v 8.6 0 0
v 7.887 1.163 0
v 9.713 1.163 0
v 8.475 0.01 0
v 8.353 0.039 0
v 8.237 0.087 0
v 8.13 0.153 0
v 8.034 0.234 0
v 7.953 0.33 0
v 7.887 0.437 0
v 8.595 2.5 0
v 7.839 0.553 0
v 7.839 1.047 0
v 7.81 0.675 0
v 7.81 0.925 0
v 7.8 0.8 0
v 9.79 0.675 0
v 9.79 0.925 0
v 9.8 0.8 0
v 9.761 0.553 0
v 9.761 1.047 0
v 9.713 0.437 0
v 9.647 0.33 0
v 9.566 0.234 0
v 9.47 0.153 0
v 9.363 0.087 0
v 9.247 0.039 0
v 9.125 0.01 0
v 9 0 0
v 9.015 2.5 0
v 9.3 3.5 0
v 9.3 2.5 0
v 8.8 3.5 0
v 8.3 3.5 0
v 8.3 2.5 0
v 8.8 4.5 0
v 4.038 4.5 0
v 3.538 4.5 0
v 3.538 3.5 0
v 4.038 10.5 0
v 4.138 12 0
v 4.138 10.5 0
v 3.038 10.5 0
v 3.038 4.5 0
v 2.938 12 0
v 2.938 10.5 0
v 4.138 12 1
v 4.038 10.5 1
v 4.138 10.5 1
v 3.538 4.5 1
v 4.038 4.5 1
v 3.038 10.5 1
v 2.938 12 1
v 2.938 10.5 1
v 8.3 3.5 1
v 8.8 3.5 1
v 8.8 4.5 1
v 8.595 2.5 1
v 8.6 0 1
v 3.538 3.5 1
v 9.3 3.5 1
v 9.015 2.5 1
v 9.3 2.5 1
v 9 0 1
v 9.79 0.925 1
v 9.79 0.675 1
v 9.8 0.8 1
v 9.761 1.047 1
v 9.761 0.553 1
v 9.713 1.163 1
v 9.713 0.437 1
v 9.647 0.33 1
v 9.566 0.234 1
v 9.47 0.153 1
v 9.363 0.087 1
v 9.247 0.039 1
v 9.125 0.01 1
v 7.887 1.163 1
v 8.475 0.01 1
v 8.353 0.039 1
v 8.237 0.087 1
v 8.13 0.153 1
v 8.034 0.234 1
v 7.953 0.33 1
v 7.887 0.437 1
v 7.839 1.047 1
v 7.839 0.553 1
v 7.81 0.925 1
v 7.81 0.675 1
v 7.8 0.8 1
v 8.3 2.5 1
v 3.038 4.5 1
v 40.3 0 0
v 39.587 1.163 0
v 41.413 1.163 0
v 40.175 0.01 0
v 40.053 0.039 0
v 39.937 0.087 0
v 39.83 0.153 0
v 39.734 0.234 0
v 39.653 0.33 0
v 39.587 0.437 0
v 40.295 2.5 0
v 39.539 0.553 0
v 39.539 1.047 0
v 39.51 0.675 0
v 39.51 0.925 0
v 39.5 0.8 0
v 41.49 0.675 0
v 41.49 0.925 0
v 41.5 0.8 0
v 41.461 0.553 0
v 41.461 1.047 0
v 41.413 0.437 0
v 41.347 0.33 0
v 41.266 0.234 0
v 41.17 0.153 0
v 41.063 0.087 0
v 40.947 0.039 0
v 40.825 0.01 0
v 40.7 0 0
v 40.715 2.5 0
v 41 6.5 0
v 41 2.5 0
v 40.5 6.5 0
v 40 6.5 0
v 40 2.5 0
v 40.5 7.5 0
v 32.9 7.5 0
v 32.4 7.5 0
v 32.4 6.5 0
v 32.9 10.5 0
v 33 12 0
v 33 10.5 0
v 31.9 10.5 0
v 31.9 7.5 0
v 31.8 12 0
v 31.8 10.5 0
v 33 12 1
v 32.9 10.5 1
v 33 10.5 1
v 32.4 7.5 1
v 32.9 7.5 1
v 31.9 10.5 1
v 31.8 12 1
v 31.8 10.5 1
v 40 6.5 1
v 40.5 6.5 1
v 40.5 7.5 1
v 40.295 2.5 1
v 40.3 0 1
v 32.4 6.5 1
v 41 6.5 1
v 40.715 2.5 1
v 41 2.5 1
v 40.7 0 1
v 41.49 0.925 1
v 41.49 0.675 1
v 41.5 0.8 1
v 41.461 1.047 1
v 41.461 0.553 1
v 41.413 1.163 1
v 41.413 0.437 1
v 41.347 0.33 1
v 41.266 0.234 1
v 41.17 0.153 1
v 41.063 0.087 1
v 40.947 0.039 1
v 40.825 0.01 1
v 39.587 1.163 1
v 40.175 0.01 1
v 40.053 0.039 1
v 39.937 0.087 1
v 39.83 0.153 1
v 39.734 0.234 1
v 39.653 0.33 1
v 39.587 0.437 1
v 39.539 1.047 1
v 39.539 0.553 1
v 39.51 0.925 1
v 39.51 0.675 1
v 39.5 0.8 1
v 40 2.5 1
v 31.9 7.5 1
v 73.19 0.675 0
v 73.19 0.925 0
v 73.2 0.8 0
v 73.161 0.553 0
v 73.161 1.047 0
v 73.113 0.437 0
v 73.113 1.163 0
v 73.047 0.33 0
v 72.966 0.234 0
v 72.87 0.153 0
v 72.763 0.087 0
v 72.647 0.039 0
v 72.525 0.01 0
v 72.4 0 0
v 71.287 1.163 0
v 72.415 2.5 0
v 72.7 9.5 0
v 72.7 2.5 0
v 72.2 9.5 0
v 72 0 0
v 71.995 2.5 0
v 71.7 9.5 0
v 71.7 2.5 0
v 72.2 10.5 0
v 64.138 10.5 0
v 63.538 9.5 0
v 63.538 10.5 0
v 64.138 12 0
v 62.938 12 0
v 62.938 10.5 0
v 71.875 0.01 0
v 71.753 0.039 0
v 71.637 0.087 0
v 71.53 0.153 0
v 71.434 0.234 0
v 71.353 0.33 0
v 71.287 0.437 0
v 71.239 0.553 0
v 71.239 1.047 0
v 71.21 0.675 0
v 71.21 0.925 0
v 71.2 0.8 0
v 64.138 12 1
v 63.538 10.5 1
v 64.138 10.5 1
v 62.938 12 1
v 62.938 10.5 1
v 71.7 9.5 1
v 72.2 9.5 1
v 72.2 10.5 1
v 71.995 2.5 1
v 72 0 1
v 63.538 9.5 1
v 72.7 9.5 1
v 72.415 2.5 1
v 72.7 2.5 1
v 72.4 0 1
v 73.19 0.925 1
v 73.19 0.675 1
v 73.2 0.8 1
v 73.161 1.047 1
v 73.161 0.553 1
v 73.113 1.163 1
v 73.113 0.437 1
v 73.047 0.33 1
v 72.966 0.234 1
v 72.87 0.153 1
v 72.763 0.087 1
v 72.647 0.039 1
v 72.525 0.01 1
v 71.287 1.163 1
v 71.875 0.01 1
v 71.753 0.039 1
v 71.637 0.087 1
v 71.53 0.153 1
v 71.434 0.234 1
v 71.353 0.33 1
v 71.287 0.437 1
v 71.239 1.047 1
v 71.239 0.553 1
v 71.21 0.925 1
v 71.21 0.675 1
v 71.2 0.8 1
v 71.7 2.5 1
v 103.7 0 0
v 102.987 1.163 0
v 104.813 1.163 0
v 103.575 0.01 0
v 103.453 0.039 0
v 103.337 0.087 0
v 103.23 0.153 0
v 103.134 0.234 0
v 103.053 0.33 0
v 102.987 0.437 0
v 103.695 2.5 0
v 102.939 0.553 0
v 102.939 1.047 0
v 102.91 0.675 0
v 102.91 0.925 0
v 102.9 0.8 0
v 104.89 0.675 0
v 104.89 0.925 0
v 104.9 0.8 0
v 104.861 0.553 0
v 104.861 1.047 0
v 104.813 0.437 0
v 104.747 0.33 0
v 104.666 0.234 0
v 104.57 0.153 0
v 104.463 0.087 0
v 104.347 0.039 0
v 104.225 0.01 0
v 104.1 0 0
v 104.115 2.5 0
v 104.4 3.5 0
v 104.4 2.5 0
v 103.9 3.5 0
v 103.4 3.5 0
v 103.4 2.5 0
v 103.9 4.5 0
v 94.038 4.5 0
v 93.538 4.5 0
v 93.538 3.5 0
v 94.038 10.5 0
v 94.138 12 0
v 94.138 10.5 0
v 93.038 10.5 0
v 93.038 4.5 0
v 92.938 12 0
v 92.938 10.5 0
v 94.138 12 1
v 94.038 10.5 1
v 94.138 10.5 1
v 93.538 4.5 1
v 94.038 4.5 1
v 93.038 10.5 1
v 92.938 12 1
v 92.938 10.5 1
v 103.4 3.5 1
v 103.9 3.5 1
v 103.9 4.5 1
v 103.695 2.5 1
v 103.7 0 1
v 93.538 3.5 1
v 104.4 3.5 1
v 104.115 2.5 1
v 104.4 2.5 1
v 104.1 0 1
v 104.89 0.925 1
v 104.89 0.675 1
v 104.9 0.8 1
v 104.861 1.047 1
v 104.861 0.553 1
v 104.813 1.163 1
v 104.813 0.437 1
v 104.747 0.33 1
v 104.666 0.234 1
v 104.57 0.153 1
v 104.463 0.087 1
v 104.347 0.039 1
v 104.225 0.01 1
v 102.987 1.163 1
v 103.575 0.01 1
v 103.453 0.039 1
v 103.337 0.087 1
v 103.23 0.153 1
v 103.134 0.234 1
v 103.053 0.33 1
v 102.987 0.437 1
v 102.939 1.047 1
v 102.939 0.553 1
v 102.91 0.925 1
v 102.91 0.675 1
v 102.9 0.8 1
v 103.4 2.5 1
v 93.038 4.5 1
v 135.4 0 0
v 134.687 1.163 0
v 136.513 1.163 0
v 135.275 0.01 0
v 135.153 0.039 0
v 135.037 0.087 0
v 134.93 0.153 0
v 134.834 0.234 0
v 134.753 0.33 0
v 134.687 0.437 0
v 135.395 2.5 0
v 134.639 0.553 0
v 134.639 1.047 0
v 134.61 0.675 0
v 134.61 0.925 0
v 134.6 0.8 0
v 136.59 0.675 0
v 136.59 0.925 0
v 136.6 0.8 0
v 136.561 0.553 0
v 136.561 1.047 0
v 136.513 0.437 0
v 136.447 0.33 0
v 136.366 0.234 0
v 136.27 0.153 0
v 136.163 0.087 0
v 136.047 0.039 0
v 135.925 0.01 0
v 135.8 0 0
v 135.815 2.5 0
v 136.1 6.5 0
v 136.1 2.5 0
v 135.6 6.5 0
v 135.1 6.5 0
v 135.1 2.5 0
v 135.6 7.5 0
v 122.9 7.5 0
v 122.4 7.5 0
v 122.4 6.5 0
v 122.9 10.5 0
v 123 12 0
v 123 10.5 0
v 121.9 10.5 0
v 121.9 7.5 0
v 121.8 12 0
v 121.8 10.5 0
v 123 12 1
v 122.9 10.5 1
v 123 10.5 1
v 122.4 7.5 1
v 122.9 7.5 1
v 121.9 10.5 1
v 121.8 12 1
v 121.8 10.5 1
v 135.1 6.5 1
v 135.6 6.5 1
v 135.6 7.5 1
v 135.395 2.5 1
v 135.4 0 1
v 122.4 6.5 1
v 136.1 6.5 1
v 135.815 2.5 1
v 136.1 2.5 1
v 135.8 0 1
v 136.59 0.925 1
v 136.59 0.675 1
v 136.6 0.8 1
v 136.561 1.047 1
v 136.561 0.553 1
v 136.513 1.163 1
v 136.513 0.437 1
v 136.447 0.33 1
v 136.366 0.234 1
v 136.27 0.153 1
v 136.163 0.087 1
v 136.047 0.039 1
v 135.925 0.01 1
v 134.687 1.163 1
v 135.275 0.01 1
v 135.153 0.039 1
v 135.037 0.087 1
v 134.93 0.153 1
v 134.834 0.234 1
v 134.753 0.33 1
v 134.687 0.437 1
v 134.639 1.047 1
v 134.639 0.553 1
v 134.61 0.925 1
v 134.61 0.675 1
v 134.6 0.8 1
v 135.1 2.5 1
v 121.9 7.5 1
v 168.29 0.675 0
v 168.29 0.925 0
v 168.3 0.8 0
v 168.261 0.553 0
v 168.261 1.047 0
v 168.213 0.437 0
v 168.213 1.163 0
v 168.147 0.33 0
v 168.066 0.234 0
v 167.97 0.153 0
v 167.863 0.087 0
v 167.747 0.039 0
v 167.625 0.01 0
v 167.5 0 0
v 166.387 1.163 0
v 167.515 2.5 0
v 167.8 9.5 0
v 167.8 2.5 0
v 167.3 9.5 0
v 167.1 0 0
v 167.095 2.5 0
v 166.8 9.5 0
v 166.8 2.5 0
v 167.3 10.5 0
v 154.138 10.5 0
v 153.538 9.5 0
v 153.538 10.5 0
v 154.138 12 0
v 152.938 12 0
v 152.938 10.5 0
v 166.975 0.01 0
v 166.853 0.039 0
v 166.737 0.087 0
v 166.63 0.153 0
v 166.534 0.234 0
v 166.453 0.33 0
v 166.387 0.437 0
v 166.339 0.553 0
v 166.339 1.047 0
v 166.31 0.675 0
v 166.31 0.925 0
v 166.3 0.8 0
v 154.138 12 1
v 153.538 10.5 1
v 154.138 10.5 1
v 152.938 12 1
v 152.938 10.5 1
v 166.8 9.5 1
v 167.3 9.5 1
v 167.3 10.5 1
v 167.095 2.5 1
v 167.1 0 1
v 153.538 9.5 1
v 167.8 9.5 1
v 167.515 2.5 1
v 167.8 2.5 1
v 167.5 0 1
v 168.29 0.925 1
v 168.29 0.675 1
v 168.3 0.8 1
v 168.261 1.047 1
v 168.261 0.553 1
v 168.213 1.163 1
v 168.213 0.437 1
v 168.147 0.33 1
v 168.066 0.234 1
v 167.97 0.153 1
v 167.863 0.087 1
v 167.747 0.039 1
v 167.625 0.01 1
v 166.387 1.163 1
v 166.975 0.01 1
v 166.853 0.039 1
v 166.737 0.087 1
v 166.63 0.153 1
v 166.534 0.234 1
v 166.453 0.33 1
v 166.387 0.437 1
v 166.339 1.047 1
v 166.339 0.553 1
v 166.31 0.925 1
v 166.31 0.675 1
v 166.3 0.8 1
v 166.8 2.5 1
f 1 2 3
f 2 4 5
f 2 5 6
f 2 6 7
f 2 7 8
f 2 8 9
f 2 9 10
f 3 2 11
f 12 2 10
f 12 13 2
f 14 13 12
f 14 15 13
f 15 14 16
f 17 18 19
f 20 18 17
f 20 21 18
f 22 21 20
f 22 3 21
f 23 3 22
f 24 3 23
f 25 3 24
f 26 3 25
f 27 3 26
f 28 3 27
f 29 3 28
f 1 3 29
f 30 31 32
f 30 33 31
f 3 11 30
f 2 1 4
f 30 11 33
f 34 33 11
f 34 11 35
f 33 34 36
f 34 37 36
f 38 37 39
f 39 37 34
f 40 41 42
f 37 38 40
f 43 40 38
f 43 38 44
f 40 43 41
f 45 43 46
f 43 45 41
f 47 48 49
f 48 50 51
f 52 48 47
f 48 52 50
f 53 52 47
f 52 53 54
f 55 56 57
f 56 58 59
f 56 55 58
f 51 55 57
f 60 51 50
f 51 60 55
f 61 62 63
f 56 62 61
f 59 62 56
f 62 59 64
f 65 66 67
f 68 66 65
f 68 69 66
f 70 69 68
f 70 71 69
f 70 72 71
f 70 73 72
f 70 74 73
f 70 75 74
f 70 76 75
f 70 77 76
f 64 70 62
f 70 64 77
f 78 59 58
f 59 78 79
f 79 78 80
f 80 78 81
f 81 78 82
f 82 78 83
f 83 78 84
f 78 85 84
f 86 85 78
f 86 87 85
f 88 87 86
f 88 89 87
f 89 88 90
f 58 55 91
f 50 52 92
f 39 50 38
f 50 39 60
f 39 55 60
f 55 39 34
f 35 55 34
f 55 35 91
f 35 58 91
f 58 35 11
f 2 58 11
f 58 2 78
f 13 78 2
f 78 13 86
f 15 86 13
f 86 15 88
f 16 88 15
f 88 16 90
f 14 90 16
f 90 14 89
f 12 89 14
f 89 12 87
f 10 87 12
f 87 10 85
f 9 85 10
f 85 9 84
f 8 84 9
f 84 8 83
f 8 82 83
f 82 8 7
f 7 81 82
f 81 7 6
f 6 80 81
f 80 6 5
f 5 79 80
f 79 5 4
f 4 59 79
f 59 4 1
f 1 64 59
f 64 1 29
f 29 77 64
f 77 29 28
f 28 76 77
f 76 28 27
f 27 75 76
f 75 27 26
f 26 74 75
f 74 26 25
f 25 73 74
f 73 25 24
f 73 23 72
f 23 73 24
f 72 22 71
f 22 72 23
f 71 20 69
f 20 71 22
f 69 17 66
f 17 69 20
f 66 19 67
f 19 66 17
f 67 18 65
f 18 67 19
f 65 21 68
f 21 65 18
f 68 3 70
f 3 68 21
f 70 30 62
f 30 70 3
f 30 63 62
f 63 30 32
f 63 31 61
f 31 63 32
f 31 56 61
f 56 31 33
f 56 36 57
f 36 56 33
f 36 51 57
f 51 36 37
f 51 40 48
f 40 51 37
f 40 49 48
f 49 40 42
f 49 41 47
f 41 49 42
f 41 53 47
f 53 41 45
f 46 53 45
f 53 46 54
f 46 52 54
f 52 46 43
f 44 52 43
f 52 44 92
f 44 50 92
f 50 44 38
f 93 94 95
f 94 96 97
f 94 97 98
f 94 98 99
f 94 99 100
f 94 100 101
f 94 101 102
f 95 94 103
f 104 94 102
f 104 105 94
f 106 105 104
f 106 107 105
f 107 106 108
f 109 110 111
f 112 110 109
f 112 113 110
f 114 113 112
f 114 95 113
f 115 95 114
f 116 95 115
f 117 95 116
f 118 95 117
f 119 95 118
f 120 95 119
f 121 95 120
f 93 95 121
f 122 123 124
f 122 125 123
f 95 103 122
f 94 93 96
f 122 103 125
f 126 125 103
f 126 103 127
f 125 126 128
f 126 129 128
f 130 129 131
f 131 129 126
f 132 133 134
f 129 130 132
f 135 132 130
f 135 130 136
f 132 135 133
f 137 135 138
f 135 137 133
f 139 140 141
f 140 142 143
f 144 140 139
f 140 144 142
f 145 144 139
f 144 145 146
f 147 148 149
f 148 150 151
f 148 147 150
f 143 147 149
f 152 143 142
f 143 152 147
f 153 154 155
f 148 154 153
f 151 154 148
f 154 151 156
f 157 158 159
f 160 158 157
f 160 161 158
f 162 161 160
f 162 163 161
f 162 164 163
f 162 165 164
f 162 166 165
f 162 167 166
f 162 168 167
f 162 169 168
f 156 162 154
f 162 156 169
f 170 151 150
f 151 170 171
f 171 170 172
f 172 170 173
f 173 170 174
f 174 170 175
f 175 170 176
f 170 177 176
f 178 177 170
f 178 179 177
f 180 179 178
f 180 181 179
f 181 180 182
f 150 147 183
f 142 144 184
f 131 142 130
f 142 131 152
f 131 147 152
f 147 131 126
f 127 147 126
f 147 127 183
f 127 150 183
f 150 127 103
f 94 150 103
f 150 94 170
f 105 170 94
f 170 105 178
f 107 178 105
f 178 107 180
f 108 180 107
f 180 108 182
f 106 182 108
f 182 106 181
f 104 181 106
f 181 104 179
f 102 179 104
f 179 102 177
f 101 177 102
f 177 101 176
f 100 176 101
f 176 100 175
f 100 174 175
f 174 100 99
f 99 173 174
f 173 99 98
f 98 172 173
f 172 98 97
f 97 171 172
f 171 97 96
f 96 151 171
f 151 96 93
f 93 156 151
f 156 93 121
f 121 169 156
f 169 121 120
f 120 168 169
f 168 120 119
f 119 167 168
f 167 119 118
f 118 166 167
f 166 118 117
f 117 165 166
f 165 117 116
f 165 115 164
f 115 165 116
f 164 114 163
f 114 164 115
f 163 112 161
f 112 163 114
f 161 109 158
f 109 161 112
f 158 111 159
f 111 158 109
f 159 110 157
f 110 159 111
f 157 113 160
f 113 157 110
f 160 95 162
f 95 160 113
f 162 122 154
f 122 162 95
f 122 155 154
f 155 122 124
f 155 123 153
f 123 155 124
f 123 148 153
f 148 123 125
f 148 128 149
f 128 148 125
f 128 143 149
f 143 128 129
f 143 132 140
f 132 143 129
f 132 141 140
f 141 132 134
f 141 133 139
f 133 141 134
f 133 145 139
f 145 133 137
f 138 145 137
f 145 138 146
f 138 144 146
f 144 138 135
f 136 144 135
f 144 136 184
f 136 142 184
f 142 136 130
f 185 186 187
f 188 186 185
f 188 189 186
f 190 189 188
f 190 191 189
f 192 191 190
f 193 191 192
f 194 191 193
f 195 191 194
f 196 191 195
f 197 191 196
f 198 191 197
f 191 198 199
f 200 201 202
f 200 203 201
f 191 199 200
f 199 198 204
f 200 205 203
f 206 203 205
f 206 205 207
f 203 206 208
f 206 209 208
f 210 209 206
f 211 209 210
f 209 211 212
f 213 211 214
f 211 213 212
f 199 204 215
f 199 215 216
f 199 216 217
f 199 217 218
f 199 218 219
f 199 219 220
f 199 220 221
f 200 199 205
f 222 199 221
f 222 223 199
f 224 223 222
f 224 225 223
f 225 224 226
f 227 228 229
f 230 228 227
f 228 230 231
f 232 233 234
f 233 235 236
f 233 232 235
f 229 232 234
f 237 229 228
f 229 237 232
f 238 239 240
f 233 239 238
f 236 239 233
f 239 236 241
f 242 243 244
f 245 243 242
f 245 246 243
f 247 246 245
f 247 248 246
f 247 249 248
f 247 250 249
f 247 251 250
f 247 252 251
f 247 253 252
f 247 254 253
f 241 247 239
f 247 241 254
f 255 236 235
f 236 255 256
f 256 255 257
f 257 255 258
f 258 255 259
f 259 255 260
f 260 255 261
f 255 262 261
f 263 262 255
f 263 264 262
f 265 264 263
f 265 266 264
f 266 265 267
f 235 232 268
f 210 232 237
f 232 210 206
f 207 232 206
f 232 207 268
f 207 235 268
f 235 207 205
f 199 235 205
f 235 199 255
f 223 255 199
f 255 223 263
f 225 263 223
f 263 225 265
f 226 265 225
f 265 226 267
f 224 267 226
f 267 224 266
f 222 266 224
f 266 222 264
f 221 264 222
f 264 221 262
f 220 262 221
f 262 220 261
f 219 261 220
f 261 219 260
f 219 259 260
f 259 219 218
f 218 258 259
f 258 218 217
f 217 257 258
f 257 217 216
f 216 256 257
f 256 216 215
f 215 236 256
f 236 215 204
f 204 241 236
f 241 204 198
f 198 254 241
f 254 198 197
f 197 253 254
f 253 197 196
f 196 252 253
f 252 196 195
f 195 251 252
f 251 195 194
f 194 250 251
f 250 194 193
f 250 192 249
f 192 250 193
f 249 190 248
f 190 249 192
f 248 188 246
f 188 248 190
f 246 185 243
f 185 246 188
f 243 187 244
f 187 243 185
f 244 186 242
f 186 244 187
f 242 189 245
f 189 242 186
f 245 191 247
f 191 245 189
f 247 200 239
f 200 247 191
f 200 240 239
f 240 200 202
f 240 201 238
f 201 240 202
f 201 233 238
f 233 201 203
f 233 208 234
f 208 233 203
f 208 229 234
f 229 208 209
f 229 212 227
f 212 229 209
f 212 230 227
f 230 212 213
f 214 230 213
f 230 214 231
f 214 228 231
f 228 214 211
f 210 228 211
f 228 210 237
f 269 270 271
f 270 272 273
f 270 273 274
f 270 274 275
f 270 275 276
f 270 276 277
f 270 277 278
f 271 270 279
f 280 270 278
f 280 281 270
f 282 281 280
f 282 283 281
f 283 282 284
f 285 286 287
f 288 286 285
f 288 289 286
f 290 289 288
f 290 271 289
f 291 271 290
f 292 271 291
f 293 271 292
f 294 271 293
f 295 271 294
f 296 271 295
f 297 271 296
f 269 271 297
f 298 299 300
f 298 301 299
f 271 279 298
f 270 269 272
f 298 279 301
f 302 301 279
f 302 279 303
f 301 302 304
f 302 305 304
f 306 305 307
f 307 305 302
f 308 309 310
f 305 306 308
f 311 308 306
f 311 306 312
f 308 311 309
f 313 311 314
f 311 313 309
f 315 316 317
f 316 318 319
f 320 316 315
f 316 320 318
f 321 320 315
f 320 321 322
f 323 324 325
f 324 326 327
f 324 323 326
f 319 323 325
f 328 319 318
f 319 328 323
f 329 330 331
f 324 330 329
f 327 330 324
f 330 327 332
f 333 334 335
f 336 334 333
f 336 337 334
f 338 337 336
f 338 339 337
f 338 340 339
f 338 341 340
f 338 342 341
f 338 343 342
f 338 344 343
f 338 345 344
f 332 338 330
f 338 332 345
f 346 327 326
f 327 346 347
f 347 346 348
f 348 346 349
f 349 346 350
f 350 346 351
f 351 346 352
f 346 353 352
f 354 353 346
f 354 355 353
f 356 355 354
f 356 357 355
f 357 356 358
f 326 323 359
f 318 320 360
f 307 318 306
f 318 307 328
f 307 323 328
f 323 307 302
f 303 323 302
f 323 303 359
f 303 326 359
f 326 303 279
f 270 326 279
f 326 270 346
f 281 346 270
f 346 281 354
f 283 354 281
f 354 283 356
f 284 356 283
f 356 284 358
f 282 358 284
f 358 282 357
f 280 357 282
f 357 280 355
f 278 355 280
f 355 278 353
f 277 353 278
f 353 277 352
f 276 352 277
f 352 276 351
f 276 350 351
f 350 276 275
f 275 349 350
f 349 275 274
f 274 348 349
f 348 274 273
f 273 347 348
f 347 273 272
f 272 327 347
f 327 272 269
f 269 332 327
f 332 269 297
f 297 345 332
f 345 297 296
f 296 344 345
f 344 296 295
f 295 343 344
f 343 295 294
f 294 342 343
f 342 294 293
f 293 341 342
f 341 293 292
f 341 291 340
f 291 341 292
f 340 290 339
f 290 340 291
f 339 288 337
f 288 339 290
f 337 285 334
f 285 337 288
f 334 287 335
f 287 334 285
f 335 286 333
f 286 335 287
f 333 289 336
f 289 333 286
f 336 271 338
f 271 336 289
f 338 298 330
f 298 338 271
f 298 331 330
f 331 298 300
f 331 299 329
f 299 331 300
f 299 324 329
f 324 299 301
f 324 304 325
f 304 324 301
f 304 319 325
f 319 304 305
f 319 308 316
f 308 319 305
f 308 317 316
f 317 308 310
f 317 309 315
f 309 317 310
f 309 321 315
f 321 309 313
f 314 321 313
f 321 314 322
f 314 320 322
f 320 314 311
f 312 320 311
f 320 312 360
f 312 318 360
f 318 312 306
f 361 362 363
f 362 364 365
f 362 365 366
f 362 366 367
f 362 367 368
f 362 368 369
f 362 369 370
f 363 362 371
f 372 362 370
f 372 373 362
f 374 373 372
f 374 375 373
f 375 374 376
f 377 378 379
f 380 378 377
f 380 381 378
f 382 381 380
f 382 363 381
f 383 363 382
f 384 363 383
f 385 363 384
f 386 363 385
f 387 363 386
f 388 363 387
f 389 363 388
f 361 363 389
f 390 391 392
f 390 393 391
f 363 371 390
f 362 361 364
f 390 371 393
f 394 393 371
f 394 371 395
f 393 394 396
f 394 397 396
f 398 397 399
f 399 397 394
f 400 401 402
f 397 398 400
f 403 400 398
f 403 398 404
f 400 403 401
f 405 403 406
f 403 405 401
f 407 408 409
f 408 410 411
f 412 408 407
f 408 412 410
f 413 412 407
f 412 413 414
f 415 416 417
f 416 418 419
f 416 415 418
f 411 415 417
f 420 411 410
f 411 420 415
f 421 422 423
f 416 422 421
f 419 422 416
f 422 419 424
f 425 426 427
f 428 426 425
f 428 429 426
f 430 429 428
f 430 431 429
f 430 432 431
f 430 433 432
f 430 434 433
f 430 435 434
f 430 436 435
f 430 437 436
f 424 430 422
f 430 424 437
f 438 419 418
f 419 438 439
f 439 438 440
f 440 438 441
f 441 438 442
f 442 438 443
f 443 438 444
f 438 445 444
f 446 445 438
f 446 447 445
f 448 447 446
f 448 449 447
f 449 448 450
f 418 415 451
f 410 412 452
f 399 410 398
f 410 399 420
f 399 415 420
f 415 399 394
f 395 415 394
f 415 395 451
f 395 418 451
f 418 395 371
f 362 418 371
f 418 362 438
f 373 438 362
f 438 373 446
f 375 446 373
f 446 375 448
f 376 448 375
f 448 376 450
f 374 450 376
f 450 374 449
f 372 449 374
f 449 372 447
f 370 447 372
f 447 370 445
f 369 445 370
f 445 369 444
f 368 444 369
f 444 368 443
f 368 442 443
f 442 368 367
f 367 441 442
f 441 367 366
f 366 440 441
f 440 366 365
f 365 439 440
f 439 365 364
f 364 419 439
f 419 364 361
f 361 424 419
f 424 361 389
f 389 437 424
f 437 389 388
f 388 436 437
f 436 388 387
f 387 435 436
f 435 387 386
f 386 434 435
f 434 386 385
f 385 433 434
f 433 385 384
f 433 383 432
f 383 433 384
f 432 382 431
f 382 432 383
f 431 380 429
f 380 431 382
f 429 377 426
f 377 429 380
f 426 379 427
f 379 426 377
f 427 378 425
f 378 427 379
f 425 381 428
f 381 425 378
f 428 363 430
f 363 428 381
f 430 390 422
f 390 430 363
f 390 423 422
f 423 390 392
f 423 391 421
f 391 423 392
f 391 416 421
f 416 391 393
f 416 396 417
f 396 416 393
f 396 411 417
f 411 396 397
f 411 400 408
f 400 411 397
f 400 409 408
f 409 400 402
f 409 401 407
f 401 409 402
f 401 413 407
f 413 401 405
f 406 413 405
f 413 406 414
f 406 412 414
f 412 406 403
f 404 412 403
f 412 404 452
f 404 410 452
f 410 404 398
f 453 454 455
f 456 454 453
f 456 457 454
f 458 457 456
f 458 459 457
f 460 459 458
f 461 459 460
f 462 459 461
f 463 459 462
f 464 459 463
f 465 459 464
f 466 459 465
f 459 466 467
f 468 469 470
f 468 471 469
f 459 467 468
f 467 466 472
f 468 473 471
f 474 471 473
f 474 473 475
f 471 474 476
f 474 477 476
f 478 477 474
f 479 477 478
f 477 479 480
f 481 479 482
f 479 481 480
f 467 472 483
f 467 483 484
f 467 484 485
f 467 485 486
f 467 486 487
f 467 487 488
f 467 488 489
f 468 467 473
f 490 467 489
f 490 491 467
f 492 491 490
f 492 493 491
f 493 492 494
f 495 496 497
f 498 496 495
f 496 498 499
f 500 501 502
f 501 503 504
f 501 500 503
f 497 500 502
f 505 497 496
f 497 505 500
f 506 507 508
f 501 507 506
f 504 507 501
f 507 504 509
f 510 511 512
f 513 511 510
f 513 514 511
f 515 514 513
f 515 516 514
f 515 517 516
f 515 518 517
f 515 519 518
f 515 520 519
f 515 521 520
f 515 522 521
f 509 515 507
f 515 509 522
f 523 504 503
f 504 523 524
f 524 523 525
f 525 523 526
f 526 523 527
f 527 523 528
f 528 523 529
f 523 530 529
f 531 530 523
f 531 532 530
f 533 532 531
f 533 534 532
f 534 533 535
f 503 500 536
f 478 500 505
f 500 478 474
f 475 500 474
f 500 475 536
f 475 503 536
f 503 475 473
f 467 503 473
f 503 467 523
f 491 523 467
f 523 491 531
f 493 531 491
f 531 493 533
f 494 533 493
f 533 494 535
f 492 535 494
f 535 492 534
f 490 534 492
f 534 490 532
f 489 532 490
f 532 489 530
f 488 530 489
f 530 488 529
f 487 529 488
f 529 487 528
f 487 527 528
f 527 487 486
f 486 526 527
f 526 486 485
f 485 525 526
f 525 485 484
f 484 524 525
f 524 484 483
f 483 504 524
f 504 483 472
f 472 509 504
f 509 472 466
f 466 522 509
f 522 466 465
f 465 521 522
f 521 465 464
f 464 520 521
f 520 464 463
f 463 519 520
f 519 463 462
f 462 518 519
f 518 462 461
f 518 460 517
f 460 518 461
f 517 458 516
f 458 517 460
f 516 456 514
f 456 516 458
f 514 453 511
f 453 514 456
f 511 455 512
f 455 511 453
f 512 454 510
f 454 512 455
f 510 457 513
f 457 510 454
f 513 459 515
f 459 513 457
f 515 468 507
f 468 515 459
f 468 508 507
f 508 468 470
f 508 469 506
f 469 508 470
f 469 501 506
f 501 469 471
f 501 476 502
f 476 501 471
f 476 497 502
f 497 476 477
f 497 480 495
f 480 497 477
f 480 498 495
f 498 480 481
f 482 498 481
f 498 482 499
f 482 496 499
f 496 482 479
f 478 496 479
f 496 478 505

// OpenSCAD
// =========================================================
// BRAILLIX LINKAGE SET — Laser-Cut Metal Cranks
// Revision 2.0 — Staggered arm heights, corrected total height
// Updated 2026-05-06
//
// NOT 3D-printed. Export as DXF for laser cutting.
// Material: 1mm stainless steel or 1mm aluminium sheet.
// Post-process: sand foot tip smooth, lubricate with silicone grease.
//
// --- KEY DESIGN CHANGE FROM v1.0 ---
// v1.0: all 6 linkages had the same riser_h = 9.0mm — WRONG.
//   The available gap (base plate top to top plate bottom) is only 8mm.
//   All linkages had identical arm positions — arms in same column overlap.
//
// v2.0 fixes:
//   1. total_h = 12.0mm (foot bottom to nub top) — matches corrected stack.
//   2. Arm heights are STAGGERED per column row to prevent collision:
//        Top row (dots 1,4): arm at 3.5mm from foot
//        Mid row (dots 2,5): arm at 6.5mm from foot
//        Bot row (dots 3,6): arm at 9.5mm from foot
//      Minimum inter-arm gap at worst case (adjacent arms, one +0.8mm travel):
//        3.0mm stagger - 1.0mm arm_h - 0.8mm travel = 1.2mm clearance ✓
//   3. arm_h reduced from 1.5mm to 1.0mm to accommodate stagger within total_h.
//
// --- VERIFIED STACK (z from outer box bottom) ---
//   z=27.0  cam flat surface  → foot bottom (nub flush with top plate = dot DOWN)
//   z=27.8  cam bump top      → foot bottom (nub 0.8mm above top plate = dot UP)
//   z=39.0  top plate top surface
//   total_h = 39.0 - 27.0 = 12.0mm ✓
// =========================================================

// --- 1. PARAMETERS ---

thickness     = 1.0;    // Sheet metal thickness (extrusion depth for DXF)
foot_w        = 2.0;    // Foot width — straddles cam track (1.6mm wide), 0.2mm overhang each side
foot_len      = 2.5;    // Foot contact patch length
foot_radius   = 0.8;    // Rounded foot tip (reduces cam surface wear)
nub_w         = 1.2;    // Nub width — matches top_plate slot_width (1.2mm) exactly
nub_len       = 2.0;    // Nub length (radial extent)
nub_h         = 1.5;    // Nub protrusion above arm/upper-riser top
arm_h         = 1.0;    // Horizontal arm thickness (was 1.5 — reduced for stagger fit)
total_h       = 12.0;   // Total height: foot bottom → nub top (matches corrected stack)

// Cam geometry (must match braille_cam2.scad exactly)
track_width   = 1.6;
track_gap     = 0.1;
inner_radius  = 8.0;

// Braille dot positions (must match top_plate.scad)
col_spacing   = 4.8;    // Left column at x=-2.4, right at x=+2.4
row_spacing   = 2.6;    // Rows at y=+2.6, 0, -2.6

// Track centre radius for track index t
function track_r(t) = inner_radius + t * (track_width + track_gap) + track_width / 2;
//  t=0: 8.85mm   t=1: 10.55mm   t=2: 12.25mm
//  t=3: 13.95mm  t=4: 15.65mm   t=5: 17.35mm

function dot_x(dot) = (dot < 3) ? -col_spacing/2 : col_spacing/2;
function dot_y(dot) = (dot == 0 || dot == 3) ?  row_spacing :
                      (dot == 1 || dot == 4) ?  0 :
                                                -row_spacing;

// Arm Y position from foot bottom — STAGGERED per row to prevent collision
// Dots 0,3 = top row (innermost tracks)  → lowest arm
// Dots 1,4 = mid row                     → middle arm
// Dots 2,5 = bottom row (outermost)      → highest arm
function arm_y(dot) = (dot == 0 || dot == 3) ? 3.5 :
                      (dot == 1 || dot == 4) ? 6.5 :
                                               9.5;

// Derived heights
function lower_riser_h(dot) = arm_y(dot) - foot_len;
//   dot 0,3: 3.5 - 2.5 = 1.0mm
//   dot 1,4: 6.5 - 2.5 = 4.0mm
//   dot 2,5: 9.5 - 2.5 = 7.0mm

function upper_riser_h(dot) = total_h - arm_y(dot) - arm_h - nub_h;
//   dot 0,3: 12.0 - 3.5 - 1.0 - 1.5 = 6.0mm
//   dot 1,4: 12.0 - 6.5 - 1.0 - 1.5 = 3.0mm
//   dot 2,5: 12.0 - 9.5 - 1.0 - 1.5 = 0.0mm  (nub sits directly on arm top)

$fn = 40;

// --- 2. MODULES ---

// 2D profile of one linkage in the radial plane.
// Local axes: X = radial (larger = outer/track side), Y = vertical (up).
// Extruded to 'thickness' in Z for laser-cut preview.
//
// Parameters:
//   tr  — cam track centre radius (where foot sits)
//   dx  — Braille dot X column position (absolute, ±2.4mm)
//   dot — dot index 0..5 (determines arm height stagger)

module linkage_2d(tr, dx, dot) {
    ay  = arm_y(dot);
    lr  = lower_riser_h(dot);
    ur  = upper_riser_h(dot);

    // Arm goes from track radius (outer end) to dot radius (inner end)
    // dot_r = radial distance from cam centre to dot position
    dot_r = sqrt(dx*dx + dot_y(dot)*dot_y(dot));

    union() {
        // A. Foot — rounded rectangle, centred at x=tr
        translate([tr - foot_w/2, 0])
            hull() {
                translate([foot_radius, foot_radius])
                    circle(r=foot_radius);
                translate([foot_w - foot_radius, foot_radius])
                    circle(r=foot_radius);
                translate([foot_radius, foot_len])
                    square([foot_w - 2*foot_radius, 0.01]);
                translate([foot_w - foot_radius, foot_len])
                    square([0.01, 0.01]);
            }

        // B. Lower riser — from foot top up to arm bottom
        if(lr > 0.01)
            translate([tr - thickness/2, foot_len])
                square([thickness, lr]);

        // C. Horizontal arm — spans from dot_r (inner) to tr (outer)
        translate([dot_r, ay])
            square([tr - dot_r, arm_h]);

        // D. Upper riser — from arm top up to nub bottom (zero on outermost row)
        if(ur > 0.01)
            translate([dot_r - thickness/2, ay + arm_h])
                square([thickness, ur]);

        // E. Nub — rectangular tab, fits top_plate slot (1.2mm wide × 2.0mm long)
        //    Centred on dot_r in X, at the very top
        translate([dot_r - nub_w/2, total_h - nub_h])
            square([nub_w, nub_h]);
    }
}

module linkage_3d(tr, dx, dot) {
    linear_extrude(height=thickness)
        linkage_2d(tr, dx, dot);
}

// --- 3. GENERATE ALL 6 LINKAGES ---
// Laid flat side-by-side for DXF export. 3mm gap between each.
// For assembly preview: use the commented section below instead.

spacing = 30; // mm between linkage origins on DXF sheet

for(dot = [0:5]) {
    tr = track_r(dot);
    dx = dot_x(dot);
    translate([dot * spacing, 0, 0])
        linkage_3d(tr, dx, dot);
}

// --- ASSEMBLY PREVIEW (comment out flat layout above, uncomment here) ---
// for(dot = [0:5]) {
//     tr  = track_r(dot);
//     dx  = dot_x(dot);
//     dy  = dot_y(dot);
//     ang = atan2(dy, dx);  // angle from cam centre to dot position
//     color((dot < 3) ? "silver" : "lightgray")
//     rotate([0, 0, ang])
//         linkage_3d(tr, dx, dot);
// }

// --- 4. REFERENCE TABLE ---
// Dot | Track | Track r (mm) | Dot X  | Dot Y  | Arm Y | Lower R | Upper R
//  0  |   0   |   8.85       | -2.4   | +2.6   |  3.5  |  1.0    |  6.0
//  1  |   1   |  10.55       | -2.4   |  0.0   |  6.5  |  4.0    |  3.0
//  2  |   2   |  12.25       | -2.4   | -2.6   |  9.5  |  7.0    |  0.0
//  3  |   3   |  13.95       | +2.4   | +2.6   |  3.5  |  1.0    |  6.0
//  4  |   4   |  15.65       | +2.4   |  0.0   |  6.5  |  4.0    |  3.0
//  5  |   5   |  17.35       | +2.4   | -2.6   |  9.5  |  7.0    |  0.0
//
// Collision clearance check (adjacent arms in same column, worst case):
//   Stagger = 3.0mm, arm_h = 1.0mm, cam travel = 0.8mm
//   Minimum gap = 3.0 - 1.0 - 0.8 = 1.2mm  ✓
